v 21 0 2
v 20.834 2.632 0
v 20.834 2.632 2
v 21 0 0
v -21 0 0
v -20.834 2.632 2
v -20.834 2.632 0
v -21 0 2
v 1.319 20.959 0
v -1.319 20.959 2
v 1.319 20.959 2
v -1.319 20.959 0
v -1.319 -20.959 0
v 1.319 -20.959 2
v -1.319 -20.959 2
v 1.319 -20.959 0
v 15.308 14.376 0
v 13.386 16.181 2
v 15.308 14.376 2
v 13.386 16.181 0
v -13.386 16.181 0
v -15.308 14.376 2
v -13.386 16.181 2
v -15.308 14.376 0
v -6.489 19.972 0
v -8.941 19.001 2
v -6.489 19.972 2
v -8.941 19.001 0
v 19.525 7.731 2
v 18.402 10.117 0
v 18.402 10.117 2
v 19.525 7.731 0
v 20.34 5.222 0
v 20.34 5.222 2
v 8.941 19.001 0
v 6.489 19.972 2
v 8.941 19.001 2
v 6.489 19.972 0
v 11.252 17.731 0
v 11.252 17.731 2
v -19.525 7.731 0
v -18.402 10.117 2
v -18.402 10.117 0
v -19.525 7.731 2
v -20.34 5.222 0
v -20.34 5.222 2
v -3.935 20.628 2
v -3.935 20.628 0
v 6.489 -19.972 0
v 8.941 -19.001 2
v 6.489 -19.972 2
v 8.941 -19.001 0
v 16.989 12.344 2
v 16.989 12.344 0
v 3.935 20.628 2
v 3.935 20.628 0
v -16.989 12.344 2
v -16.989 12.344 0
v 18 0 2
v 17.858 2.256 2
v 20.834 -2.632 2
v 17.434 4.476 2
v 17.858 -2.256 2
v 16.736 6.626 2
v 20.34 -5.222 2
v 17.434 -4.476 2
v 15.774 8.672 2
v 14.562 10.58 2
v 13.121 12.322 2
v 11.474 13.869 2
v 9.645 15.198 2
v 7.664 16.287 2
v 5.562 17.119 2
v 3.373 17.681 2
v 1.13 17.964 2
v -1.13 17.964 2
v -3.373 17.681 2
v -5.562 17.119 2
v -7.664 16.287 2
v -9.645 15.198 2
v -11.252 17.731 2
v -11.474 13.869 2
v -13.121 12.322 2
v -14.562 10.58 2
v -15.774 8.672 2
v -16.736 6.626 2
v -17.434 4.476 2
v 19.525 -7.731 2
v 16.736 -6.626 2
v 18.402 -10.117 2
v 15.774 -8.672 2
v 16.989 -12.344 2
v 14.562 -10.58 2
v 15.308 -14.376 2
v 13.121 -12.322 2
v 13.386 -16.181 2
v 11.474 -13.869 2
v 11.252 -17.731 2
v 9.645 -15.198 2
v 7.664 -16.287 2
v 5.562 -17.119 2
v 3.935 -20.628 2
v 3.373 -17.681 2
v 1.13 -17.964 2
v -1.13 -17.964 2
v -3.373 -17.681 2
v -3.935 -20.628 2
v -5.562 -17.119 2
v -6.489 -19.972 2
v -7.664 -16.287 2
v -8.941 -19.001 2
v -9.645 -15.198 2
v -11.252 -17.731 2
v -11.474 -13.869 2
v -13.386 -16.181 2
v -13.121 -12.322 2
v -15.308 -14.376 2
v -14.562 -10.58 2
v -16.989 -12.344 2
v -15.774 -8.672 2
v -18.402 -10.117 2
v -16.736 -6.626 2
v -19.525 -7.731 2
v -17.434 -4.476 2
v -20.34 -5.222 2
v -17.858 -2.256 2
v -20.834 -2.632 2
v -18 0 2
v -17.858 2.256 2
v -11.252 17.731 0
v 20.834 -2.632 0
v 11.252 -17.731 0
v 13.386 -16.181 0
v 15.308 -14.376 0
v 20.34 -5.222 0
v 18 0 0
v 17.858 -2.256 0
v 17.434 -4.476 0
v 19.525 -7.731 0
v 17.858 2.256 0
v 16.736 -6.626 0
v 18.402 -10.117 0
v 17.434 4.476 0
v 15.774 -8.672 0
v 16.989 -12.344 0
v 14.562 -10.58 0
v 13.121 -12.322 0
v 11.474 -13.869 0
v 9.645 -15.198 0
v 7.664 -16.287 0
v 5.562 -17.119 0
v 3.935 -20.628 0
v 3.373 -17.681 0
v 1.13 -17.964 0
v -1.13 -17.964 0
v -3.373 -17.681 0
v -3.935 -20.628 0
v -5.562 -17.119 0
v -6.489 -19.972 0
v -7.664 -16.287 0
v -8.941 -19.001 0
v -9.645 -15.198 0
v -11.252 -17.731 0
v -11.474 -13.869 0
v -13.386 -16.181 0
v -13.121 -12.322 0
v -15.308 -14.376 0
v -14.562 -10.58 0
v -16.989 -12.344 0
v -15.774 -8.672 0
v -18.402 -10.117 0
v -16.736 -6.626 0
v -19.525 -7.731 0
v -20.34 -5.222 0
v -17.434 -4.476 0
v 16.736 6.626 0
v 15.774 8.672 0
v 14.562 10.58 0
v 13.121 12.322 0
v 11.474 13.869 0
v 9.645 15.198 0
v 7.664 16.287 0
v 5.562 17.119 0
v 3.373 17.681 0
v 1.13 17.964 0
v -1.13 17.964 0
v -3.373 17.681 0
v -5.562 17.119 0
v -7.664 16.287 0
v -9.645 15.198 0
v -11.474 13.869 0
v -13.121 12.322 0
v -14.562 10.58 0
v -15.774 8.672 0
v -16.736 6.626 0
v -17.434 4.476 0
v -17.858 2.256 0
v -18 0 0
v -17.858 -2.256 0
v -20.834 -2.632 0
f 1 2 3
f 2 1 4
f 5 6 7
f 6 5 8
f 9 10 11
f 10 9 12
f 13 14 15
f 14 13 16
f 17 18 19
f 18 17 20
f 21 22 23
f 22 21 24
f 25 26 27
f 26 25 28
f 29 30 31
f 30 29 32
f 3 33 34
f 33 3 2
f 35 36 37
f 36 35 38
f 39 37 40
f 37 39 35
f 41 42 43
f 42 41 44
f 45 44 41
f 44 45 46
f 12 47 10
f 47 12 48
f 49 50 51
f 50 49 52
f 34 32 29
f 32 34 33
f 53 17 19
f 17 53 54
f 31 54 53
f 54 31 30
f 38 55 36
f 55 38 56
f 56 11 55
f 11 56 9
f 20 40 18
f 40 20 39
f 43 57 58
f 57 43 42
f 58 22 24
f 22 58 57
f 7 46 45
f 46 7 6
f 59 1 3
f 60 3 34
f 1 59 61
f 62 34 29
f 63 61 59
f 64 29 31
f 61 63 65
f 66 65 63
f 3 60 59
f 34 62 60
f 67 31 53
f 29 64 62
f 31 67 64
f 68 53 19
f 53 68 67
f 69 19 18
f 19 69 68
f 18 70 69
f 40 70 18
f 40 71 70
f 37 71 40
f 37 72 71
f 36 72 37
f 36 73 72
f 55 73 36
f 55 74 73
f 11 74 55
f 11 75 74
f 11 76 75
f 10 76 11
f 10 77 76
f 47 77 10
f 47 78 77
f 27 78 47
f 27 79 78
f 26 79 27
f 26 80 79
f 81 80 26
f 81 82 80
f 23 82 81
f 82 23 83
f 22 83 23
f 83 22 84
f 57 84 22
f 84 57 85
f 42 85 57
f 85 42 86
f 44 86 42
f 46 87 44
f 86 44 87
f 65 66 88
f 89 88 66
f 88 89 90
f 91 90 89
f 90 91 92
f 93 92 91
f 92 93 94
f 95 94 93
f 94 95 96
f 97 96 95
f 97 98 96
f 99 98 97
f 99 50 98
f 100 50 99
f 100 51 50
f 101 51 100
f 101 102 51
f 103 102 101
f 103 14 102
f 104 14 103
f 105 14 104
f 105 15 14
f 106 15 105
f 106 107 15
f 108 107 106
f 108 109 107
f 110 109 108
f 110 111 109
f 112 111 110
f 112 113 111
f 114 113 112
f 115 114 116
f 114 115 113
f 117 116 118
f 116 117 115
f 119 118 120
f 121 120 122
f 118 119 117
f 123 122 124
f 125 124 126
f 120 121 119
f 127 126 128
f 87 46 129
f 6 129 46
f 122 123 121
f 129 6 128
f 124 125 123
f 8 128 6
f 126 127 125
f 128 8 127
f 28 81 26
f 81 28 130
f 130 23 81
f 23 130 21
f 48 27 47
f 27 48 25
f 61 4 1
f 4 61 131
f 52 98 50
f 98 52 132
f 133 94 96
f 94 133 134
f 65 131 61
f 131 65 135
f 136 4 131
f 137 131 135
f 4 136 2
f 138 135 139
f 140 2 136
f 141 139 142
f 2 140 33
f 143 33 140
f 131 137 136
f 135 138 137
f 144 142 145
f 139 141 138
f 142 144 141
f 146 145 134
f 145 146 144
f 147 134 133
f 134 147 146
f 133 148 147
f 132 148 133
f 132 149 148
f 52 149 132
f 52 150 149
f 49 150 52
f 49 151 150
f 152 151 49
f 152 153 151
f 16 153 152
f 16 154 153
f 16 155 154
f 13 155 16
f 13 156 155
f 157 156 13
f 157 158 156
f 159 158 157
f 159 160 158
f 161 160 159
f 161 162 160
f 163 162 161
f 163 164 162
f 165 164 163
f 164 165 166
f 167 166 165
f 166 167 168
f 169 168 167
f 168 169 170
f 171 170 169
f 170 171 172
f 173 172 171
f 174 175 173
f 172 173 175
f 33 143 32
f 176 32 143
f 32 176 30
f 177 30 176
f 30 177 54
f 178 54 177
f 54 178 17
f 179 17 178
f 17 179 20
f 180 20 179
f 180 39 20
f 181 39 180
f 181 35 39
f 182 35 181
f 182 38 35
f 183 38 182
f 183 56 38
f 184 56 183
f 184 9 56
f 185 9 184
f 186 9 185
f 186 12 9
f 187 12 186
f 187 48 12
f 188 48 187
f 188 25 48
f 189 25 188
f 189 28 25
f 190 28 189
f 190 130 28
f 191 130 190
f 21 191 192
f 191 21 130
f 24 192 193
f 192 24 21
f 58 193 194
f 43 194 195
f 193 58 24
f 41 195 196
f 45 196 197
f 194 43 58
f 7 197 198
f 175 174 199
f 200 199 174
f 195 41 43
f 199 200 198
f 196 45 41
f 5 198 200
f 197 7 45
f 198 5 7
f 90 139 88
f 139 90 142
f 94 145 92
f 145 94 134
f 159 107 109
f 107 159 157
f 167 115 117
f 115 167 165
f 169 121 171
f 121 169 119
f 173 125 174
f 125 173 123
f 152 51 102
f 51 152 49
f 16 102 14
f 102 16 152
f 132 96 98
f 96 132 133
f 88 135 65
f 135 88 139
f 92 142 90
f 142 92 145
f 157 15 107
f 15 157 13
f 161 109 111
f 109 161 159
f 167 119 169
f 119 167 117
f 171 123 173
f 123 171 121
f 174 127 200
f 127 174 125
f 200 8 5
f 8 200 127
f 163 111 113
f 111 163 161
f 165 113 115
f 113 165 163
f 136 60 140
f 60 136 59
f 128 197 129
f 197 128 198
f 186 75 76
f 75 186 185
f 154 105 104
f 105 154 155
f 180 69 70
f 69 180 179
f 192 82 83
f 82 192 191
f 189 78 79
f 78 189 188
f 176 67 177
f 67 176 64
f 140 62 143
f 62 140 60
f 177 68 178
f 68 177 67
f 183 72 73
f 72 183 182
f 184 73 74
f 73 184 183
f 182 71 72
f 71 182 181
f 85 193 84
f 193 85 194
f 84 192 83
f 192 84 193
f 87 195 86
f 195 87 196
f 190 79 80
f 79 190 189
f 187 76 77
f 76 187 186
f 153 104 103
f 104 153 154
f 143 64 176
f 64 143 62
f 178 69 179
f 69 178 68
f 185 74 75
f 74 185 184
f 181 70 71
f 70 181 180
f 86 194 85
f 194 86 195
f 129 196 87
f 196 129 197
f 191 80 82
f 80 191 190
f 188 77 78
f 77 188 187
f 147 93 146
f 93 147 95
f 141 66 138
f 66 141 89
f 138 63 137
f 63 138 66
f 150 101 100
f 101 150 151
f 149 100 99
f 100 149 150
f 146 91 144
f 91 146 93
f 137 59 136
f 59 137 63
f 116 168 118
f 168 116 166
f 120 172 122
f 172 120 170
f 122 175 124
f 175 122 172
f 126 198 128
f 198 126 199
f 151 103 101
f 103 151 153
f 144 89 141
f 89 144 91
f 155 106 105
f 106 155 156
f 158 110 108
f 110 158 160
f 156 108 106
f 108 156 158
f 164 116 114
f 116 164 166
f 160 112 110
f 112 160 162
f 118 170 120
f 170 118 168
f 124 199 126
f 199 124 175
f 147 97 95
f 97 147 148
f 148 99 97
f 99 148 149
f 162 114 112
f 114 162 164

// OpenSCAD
$fn=50;

difference() {
    cylinder(2,42/2,42/2);
    cylinder(2,36/2,36/2);
}
